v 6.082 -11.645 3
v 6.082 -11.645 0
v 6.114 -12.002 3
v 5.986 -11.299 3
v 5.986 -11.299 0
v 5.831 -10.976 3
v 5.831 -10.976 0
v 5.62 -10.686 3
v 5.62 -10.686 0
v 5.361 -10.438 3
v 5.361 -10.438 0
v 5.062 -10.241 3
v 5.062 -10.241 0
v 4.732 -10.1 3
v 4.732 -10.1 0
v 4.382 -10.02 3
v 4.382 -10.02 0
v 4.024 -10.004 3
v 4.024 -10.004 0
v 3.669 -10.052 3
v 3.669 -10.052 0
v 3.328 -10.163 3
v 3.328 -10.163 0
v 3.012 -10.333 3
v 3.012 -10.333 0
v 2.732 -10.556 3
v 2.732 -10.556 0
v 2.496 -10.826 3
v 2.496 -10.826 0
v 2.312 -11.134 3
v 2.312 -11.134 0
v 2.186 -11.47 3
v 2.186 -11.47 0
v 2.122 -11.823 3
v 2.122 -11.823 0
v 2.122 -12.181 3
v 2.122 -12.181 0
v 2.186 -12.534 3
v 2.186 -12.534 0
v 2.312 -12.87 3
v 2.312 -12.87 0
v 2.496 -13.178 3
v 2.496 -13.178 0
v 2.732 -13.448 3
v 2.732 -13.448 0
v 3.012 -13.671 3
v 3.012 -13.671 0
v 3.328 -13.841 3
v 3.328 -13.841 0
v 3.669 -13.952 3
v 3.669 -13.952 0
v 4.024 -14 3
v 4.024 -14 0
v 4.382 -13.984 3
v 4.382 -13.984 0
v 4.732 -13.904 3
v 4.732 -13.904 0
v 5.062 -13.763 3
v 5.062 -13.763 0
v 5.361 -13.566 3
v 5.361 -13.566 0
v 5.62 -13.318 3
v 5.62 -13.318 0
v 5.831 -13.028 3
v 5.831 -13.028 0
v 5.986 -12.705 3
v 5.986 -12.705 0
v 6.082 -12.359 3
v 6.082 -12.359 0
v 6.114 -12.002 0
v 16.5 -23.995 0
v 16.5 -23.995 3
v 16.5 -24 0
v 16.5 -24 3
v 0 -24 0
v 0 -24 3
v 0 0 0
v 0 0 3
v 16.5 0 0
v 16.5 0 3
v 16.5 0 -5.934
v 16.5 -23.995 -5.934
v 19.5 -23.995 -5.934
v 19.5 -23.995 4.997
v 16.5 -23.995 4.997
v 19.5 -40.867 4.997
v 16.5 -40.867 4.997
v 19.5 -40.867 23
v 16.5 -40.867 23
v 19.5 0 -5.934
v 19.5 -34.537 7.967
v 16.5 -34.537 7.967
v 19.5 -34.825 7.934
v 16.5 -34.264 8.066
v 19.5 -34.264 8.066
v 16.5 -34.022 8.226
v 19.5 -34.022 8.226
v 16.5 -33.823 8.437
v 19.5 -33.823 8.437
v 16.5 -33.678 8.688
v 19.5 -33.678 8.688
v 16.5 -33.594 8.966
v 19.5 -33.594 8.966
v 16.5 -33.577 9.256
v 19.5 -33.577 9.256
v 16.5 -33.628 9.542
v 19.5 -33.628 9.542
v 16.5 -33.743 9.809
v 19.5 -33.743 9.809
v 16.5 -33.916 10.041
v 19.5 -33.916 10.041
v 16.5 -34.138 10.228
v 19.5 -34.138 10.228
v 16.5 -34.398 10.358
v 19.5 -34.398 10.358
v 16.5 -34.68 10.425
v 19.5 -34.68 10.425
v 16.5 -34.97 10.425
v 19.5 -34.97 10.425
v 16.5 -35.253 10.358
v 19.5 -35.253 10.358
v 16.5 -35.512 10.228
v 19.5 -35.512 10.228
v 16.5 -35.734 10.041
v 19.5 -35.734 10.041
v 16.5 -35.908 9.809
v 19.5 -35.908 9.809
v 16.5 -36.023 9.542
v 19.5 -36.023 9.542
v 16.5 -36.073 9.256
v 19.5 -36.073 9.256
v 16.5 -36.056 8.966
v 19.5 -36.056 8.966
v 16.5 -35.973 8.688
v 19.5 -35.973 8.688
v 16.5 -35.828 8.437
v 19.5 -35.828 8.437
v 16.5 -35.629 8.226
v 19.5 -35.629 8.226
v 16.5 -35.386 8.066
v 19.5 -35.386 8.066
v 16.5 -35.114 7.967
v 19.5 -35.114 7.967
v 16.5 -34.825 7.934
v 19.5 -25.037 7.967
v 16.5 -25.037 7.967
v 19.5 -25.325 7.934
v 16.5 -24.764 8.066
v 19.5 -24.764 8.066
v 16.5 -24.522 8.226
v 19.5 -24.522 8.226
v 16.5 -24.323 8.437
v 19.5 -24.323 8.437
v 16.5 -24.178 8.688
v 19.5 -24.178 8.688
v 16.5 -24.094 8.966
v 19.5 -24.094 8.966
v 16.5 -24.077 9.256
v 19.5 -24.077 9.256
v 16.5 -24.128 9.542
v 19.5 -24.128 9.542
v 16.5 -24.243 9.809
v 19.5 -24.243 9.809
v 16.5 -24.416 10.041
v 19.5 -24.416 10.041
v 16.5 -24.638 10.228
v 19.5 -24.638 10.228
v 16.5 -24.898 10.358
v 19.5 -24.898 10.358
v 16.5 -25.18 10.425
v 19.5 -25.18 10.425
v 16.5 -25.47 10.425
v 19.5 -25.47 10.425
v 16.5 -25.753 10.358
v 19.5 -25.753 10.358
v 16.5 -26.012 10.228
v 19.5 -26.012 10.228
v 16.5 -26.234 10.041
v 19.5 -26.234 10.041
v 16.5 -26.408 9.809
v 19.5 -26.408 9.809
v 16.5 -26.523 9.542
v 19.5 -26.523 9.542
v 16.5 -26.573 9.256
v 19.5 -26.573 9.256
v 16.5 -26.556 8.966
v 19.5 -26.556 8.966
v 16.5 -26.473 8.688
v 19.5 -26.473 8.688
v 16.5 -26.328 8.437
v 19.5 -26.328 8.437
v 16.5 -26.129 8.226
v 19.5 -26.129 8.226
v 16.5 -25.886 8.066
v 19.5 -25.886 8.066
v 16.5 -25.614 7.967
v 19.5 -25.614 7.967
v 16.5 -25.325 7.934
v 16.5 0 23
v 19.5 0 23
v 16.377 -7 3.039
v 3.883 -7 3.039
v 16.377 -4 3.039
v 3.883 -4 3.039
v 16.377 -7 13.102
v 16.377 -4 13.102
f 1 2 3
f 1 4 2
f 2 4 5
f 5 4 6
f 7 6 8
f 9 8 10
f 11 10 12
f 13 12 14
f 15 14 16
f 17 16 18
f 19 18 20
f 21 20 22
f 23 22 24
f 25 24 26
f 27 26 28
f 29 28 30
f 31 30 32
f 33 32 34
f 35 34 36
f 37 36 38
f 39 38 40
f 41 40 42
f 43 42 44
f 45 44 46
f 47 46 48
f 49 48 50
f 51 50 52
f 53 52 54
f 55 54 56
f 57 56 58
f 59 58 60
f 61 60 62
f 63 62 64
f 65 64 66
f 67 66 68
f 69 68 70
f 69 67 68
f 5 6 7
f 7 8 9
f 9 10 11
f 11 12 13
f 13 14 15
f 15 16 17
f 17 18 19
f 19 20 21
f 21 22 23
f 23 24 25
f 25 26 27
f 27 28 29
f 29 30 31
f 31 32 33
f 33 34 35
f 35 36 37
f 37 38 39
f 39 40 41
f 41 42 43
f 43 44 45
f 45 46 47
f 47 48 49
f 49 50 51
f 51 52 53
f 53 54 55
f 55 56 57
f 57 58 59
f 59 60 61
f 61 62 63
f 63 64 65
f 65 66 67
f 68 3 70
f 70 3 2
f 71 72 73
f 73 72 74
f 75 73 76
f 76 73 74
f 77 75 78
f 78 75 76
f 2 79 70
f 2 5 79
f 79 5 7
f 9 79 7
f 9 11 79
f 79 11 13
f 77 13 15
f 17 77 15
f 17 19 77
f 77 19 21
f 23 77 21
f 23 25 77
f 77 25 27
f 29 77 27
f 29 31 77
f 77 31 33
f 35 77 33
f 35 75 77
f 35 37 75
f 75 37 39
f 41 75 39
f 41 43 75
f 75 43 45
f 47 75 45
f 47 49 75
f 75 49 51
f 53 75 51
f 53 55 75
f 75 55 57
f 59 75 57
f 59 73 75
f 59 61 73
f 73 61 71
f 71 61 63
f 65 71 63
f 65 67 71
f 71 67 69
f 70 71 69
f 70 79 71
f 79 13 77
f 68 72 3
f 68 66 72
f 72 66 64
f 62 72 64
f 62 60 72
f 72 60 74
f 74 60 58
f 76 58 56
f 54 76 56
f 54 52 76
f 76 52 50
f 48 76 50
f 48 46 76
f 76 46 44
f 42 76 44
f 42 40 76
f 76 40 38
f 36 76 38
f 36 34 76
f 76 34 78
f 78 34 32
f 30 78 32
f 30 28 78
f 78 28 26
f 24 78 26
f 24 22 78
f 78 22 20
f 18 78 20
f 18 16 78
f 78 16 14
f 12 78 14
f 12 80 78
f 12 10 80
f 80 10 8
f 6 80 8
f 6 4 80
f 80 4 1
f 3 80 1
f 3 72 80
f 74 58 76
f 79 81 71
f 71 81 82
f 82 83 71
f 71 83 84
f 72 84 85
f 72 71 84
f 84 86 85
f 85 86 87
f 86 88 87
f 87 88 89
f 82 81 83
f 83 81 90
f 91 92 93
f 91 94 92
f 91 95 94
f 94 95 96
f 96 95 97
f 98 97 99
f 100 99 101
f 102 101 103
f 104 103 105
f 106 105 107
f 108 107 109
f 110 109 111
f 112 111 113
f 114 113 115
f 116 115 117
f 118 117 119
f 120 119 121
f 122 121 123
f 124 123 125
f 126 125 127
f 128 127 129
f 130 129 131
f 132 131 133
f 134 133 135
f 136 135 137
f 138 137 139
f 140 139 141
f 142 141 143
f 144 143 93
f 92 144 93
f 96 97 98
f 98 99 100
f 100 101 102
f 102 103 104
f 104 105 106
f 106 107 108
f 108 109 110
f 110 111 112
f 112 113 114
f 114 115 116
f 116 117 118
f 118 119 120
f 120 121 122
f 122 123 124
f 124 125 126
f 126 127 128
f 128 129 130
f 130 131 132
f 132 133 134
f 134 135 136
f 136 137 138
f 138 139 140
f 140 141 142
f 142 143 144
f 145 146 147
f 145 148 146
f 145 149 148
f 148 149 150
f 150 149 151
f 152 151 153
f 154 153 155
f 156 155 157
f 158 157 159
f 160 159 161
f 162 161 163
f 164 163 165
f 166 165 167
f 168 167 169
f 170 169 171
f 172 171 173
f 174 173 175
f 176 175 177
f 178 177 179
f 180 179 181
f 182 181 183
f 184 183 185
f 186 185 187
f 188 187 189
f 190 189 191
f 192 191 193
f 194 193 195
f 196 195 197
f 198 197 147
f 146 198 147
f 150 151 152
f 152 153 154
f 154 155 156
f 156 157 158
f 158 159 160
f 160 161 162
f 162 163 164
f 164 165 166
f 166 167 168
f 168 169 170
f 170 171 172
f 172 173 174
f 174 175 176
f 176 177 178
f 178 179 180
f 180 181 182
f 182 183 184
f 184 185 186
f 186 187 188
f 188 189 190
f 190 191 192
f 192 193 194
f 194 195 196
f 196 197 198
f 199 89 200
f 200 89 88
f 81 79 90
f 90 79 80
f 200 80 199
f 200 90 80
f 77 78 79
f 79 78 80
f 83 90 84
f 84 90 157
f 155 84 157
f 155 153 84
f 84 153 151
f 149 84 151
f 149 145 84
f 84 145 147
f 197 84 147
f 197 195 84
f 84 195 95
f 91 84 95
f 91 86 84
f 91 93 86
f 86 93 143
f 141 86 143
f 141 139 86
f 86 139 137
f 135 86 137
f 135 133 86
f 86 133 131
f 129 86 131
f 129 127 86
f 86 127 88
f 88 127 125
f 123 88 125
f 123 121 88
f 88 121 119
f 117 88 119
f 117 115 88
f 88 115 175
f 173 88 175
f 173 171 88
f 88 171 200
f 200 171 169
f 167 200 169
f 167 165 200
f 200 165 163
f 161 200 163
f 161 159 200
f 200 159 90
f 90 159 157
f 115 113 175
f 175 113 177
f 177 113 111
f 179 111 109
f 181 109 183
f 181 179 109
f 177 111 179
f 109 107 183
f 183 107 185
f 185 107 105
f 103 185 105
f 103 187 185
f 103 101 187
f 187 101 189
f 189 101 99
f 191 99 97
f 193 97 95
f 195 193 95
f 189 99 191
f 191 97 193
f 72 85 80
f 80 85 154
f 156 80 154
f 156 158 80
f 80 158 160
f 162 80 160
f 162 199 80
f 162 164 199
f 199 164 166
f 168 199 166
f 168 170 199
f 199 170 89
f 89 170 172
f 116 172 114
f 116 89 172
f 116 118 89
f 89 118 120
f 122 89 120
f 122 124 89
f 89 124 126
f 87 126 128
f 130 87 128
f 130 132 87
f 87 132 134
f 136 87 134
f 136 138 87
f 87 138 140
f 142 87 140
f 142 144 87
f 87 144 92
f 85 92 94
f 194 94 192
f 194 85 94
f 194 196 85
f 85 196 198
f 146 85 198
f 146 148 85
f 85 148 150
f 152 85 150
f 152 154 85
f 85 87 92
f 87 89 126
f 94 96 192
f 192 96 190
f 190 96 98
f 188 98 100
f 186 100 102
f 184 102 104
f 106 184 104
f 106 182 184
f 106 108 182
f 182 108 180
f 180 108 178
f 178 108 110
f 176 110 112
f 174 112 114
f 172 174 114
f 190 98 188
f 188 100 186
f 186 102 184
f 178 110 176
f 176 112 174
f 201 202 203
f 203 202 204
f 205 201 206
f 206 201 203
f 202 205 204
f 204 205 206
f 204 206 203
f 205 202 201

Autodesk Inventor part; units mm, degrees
sketch "Sketch1" plane through (0, 0, 0) normal (0, 0, 1) x (1, 0, 0)
  line L0 (0, 0) -> (16.5, 0)
  line L1 (16.5, 0) -> (16.5, -24)
  line L2 (16.5, -24) -> (0, -24)
  line L3 (0, -24) -> (0, 0)
  line L4 (24.2611, -12.002) -> (-7.0214, -12.002)
  circle A0 centre (4.1138, -12.002) radius 2
  dimension "d0" = 16.5
  dimension "d1" = 24
  dimension "d7" = 4
ref_plane "Work Plane2" through (16.5, -24, 0) normal (1, 0, 0) x (0, 0, -1)
sketch "Sketch2" plane through (16.5, -24, 0) normal (1, 0, 0) x (0, 0, -1)
  line L0 (-3, -16.8669) -> (-3, 24)
  line L1 (-3, -16.8669) -> (-23, -16.8669)
  line L2 (-23, -16.8669) -> (5.9335, -16.8669)
  line L3 (5.9335, -16.8669) -> (5.9335, 24)
  line L4 (5.9335, 24) -> (-23, 24)
  line L5 (-23, 24) -> (-23, -16.8669)
  circle A0 centre (-9.1835, -1.3253) radius 1.25
  line L6 (-9.1835, -1.3253) -> (-9.1835, -10.8253) construction
  circle A1 centre (-9.1835, -10.8253) radius 1.25
  dimension "d11" = 20
  dimension "d12" = 2.5
  dimension "d13" = 9.5
  dimension "d14" = 2.5
extrude "Extrusion2" add sketch "Sketch2" along normal blind 3
ref_plane "Work Plane3" through (16.5, -24, 0) normal (-1, 0, 0) x (0, 0, 1)
sketch "Sketch3" plane through (16.5, -24, 0) normal (-1, 0, 0) x (0, 0, 1)
  line L0 (-5.9335, -16.8669) -> (-5.9335, 24) projected
  line L1 (-5.9335, 0.0047) -> (4.9967, 0.0047)
  line L2 (4.9967, 0.0047) -> (4.9967, -16.8669)
  line L3 (4.9967, -16.8669) -> (-5.9335, -16.8669)
  line L4 (-5.9335, -16.8669) -> (-5.9335, 0.0047)
extrude "Extrusion3" cut sketch "Sketch3" against normal through all
ref_plane "Work Plane1" through (0, -7, 3) normal (0, 1, 0) x (1, 0, 0)
sketch "Sketch4" plane through (16.5, -24, 0) normal (-1, 0, 0) x (0, 0, 1)
  line L0 (4.9967, 0.0047) -> (4.9967, -16.8669) projected
  line L1 (23, -16.8669) -> (4.9967, -16.8669) projected
  line L2 (23, 24) -> (23, -16.8669) projected
  line L3 (3, 24) -> (23, 24) projected
  line L4 (3, 0.0047) -> (3, 24) projected
  line L5 (3, 0.0047) -> (4.9967, 0.0047) projected
  line L6 (4.9967, 0.0047) -> (4.9967, -16.8669) projected
  line L7 (23, -16.8669) -> (4.9967, -16.8669) projected
  line L8 (23, 24) -> (23, -16.8669) projected
  line L9 (-5.9335, 24) -> (23, 24) projected
  line L10 (-5.9335, 0.0047) -> (-5.9335, 24) projected
  line L11 (-5.9335, 0.0047) -> (4.9967, 0.0047) projected
  point P0 (0, 24)
extrude "Extrusion4" add sketch "Sketch1" along normal blind 3 contours L0 L1 L4 A0 L3 | L4 A0 L1 L2 L3
sketch "Sketch5" plane through (0, -7, 3) normal (0, 1, 0) x (1, 0, 0)
  line L0 (3.8833, -0.0391) -> (16.3772, -10.1018)
  line L1 (16.3772, -10.1018) -> (16.3772, -0.0391)
  line L2 (16.3772, -0.0391) -> (3.8833, -0.0391)
  point P0 (0, 3)
extrude "Extrusion5" add sketch "Sketch5" along normal blind 3
properties part number "bart y end stop bracket plain switch v1"
